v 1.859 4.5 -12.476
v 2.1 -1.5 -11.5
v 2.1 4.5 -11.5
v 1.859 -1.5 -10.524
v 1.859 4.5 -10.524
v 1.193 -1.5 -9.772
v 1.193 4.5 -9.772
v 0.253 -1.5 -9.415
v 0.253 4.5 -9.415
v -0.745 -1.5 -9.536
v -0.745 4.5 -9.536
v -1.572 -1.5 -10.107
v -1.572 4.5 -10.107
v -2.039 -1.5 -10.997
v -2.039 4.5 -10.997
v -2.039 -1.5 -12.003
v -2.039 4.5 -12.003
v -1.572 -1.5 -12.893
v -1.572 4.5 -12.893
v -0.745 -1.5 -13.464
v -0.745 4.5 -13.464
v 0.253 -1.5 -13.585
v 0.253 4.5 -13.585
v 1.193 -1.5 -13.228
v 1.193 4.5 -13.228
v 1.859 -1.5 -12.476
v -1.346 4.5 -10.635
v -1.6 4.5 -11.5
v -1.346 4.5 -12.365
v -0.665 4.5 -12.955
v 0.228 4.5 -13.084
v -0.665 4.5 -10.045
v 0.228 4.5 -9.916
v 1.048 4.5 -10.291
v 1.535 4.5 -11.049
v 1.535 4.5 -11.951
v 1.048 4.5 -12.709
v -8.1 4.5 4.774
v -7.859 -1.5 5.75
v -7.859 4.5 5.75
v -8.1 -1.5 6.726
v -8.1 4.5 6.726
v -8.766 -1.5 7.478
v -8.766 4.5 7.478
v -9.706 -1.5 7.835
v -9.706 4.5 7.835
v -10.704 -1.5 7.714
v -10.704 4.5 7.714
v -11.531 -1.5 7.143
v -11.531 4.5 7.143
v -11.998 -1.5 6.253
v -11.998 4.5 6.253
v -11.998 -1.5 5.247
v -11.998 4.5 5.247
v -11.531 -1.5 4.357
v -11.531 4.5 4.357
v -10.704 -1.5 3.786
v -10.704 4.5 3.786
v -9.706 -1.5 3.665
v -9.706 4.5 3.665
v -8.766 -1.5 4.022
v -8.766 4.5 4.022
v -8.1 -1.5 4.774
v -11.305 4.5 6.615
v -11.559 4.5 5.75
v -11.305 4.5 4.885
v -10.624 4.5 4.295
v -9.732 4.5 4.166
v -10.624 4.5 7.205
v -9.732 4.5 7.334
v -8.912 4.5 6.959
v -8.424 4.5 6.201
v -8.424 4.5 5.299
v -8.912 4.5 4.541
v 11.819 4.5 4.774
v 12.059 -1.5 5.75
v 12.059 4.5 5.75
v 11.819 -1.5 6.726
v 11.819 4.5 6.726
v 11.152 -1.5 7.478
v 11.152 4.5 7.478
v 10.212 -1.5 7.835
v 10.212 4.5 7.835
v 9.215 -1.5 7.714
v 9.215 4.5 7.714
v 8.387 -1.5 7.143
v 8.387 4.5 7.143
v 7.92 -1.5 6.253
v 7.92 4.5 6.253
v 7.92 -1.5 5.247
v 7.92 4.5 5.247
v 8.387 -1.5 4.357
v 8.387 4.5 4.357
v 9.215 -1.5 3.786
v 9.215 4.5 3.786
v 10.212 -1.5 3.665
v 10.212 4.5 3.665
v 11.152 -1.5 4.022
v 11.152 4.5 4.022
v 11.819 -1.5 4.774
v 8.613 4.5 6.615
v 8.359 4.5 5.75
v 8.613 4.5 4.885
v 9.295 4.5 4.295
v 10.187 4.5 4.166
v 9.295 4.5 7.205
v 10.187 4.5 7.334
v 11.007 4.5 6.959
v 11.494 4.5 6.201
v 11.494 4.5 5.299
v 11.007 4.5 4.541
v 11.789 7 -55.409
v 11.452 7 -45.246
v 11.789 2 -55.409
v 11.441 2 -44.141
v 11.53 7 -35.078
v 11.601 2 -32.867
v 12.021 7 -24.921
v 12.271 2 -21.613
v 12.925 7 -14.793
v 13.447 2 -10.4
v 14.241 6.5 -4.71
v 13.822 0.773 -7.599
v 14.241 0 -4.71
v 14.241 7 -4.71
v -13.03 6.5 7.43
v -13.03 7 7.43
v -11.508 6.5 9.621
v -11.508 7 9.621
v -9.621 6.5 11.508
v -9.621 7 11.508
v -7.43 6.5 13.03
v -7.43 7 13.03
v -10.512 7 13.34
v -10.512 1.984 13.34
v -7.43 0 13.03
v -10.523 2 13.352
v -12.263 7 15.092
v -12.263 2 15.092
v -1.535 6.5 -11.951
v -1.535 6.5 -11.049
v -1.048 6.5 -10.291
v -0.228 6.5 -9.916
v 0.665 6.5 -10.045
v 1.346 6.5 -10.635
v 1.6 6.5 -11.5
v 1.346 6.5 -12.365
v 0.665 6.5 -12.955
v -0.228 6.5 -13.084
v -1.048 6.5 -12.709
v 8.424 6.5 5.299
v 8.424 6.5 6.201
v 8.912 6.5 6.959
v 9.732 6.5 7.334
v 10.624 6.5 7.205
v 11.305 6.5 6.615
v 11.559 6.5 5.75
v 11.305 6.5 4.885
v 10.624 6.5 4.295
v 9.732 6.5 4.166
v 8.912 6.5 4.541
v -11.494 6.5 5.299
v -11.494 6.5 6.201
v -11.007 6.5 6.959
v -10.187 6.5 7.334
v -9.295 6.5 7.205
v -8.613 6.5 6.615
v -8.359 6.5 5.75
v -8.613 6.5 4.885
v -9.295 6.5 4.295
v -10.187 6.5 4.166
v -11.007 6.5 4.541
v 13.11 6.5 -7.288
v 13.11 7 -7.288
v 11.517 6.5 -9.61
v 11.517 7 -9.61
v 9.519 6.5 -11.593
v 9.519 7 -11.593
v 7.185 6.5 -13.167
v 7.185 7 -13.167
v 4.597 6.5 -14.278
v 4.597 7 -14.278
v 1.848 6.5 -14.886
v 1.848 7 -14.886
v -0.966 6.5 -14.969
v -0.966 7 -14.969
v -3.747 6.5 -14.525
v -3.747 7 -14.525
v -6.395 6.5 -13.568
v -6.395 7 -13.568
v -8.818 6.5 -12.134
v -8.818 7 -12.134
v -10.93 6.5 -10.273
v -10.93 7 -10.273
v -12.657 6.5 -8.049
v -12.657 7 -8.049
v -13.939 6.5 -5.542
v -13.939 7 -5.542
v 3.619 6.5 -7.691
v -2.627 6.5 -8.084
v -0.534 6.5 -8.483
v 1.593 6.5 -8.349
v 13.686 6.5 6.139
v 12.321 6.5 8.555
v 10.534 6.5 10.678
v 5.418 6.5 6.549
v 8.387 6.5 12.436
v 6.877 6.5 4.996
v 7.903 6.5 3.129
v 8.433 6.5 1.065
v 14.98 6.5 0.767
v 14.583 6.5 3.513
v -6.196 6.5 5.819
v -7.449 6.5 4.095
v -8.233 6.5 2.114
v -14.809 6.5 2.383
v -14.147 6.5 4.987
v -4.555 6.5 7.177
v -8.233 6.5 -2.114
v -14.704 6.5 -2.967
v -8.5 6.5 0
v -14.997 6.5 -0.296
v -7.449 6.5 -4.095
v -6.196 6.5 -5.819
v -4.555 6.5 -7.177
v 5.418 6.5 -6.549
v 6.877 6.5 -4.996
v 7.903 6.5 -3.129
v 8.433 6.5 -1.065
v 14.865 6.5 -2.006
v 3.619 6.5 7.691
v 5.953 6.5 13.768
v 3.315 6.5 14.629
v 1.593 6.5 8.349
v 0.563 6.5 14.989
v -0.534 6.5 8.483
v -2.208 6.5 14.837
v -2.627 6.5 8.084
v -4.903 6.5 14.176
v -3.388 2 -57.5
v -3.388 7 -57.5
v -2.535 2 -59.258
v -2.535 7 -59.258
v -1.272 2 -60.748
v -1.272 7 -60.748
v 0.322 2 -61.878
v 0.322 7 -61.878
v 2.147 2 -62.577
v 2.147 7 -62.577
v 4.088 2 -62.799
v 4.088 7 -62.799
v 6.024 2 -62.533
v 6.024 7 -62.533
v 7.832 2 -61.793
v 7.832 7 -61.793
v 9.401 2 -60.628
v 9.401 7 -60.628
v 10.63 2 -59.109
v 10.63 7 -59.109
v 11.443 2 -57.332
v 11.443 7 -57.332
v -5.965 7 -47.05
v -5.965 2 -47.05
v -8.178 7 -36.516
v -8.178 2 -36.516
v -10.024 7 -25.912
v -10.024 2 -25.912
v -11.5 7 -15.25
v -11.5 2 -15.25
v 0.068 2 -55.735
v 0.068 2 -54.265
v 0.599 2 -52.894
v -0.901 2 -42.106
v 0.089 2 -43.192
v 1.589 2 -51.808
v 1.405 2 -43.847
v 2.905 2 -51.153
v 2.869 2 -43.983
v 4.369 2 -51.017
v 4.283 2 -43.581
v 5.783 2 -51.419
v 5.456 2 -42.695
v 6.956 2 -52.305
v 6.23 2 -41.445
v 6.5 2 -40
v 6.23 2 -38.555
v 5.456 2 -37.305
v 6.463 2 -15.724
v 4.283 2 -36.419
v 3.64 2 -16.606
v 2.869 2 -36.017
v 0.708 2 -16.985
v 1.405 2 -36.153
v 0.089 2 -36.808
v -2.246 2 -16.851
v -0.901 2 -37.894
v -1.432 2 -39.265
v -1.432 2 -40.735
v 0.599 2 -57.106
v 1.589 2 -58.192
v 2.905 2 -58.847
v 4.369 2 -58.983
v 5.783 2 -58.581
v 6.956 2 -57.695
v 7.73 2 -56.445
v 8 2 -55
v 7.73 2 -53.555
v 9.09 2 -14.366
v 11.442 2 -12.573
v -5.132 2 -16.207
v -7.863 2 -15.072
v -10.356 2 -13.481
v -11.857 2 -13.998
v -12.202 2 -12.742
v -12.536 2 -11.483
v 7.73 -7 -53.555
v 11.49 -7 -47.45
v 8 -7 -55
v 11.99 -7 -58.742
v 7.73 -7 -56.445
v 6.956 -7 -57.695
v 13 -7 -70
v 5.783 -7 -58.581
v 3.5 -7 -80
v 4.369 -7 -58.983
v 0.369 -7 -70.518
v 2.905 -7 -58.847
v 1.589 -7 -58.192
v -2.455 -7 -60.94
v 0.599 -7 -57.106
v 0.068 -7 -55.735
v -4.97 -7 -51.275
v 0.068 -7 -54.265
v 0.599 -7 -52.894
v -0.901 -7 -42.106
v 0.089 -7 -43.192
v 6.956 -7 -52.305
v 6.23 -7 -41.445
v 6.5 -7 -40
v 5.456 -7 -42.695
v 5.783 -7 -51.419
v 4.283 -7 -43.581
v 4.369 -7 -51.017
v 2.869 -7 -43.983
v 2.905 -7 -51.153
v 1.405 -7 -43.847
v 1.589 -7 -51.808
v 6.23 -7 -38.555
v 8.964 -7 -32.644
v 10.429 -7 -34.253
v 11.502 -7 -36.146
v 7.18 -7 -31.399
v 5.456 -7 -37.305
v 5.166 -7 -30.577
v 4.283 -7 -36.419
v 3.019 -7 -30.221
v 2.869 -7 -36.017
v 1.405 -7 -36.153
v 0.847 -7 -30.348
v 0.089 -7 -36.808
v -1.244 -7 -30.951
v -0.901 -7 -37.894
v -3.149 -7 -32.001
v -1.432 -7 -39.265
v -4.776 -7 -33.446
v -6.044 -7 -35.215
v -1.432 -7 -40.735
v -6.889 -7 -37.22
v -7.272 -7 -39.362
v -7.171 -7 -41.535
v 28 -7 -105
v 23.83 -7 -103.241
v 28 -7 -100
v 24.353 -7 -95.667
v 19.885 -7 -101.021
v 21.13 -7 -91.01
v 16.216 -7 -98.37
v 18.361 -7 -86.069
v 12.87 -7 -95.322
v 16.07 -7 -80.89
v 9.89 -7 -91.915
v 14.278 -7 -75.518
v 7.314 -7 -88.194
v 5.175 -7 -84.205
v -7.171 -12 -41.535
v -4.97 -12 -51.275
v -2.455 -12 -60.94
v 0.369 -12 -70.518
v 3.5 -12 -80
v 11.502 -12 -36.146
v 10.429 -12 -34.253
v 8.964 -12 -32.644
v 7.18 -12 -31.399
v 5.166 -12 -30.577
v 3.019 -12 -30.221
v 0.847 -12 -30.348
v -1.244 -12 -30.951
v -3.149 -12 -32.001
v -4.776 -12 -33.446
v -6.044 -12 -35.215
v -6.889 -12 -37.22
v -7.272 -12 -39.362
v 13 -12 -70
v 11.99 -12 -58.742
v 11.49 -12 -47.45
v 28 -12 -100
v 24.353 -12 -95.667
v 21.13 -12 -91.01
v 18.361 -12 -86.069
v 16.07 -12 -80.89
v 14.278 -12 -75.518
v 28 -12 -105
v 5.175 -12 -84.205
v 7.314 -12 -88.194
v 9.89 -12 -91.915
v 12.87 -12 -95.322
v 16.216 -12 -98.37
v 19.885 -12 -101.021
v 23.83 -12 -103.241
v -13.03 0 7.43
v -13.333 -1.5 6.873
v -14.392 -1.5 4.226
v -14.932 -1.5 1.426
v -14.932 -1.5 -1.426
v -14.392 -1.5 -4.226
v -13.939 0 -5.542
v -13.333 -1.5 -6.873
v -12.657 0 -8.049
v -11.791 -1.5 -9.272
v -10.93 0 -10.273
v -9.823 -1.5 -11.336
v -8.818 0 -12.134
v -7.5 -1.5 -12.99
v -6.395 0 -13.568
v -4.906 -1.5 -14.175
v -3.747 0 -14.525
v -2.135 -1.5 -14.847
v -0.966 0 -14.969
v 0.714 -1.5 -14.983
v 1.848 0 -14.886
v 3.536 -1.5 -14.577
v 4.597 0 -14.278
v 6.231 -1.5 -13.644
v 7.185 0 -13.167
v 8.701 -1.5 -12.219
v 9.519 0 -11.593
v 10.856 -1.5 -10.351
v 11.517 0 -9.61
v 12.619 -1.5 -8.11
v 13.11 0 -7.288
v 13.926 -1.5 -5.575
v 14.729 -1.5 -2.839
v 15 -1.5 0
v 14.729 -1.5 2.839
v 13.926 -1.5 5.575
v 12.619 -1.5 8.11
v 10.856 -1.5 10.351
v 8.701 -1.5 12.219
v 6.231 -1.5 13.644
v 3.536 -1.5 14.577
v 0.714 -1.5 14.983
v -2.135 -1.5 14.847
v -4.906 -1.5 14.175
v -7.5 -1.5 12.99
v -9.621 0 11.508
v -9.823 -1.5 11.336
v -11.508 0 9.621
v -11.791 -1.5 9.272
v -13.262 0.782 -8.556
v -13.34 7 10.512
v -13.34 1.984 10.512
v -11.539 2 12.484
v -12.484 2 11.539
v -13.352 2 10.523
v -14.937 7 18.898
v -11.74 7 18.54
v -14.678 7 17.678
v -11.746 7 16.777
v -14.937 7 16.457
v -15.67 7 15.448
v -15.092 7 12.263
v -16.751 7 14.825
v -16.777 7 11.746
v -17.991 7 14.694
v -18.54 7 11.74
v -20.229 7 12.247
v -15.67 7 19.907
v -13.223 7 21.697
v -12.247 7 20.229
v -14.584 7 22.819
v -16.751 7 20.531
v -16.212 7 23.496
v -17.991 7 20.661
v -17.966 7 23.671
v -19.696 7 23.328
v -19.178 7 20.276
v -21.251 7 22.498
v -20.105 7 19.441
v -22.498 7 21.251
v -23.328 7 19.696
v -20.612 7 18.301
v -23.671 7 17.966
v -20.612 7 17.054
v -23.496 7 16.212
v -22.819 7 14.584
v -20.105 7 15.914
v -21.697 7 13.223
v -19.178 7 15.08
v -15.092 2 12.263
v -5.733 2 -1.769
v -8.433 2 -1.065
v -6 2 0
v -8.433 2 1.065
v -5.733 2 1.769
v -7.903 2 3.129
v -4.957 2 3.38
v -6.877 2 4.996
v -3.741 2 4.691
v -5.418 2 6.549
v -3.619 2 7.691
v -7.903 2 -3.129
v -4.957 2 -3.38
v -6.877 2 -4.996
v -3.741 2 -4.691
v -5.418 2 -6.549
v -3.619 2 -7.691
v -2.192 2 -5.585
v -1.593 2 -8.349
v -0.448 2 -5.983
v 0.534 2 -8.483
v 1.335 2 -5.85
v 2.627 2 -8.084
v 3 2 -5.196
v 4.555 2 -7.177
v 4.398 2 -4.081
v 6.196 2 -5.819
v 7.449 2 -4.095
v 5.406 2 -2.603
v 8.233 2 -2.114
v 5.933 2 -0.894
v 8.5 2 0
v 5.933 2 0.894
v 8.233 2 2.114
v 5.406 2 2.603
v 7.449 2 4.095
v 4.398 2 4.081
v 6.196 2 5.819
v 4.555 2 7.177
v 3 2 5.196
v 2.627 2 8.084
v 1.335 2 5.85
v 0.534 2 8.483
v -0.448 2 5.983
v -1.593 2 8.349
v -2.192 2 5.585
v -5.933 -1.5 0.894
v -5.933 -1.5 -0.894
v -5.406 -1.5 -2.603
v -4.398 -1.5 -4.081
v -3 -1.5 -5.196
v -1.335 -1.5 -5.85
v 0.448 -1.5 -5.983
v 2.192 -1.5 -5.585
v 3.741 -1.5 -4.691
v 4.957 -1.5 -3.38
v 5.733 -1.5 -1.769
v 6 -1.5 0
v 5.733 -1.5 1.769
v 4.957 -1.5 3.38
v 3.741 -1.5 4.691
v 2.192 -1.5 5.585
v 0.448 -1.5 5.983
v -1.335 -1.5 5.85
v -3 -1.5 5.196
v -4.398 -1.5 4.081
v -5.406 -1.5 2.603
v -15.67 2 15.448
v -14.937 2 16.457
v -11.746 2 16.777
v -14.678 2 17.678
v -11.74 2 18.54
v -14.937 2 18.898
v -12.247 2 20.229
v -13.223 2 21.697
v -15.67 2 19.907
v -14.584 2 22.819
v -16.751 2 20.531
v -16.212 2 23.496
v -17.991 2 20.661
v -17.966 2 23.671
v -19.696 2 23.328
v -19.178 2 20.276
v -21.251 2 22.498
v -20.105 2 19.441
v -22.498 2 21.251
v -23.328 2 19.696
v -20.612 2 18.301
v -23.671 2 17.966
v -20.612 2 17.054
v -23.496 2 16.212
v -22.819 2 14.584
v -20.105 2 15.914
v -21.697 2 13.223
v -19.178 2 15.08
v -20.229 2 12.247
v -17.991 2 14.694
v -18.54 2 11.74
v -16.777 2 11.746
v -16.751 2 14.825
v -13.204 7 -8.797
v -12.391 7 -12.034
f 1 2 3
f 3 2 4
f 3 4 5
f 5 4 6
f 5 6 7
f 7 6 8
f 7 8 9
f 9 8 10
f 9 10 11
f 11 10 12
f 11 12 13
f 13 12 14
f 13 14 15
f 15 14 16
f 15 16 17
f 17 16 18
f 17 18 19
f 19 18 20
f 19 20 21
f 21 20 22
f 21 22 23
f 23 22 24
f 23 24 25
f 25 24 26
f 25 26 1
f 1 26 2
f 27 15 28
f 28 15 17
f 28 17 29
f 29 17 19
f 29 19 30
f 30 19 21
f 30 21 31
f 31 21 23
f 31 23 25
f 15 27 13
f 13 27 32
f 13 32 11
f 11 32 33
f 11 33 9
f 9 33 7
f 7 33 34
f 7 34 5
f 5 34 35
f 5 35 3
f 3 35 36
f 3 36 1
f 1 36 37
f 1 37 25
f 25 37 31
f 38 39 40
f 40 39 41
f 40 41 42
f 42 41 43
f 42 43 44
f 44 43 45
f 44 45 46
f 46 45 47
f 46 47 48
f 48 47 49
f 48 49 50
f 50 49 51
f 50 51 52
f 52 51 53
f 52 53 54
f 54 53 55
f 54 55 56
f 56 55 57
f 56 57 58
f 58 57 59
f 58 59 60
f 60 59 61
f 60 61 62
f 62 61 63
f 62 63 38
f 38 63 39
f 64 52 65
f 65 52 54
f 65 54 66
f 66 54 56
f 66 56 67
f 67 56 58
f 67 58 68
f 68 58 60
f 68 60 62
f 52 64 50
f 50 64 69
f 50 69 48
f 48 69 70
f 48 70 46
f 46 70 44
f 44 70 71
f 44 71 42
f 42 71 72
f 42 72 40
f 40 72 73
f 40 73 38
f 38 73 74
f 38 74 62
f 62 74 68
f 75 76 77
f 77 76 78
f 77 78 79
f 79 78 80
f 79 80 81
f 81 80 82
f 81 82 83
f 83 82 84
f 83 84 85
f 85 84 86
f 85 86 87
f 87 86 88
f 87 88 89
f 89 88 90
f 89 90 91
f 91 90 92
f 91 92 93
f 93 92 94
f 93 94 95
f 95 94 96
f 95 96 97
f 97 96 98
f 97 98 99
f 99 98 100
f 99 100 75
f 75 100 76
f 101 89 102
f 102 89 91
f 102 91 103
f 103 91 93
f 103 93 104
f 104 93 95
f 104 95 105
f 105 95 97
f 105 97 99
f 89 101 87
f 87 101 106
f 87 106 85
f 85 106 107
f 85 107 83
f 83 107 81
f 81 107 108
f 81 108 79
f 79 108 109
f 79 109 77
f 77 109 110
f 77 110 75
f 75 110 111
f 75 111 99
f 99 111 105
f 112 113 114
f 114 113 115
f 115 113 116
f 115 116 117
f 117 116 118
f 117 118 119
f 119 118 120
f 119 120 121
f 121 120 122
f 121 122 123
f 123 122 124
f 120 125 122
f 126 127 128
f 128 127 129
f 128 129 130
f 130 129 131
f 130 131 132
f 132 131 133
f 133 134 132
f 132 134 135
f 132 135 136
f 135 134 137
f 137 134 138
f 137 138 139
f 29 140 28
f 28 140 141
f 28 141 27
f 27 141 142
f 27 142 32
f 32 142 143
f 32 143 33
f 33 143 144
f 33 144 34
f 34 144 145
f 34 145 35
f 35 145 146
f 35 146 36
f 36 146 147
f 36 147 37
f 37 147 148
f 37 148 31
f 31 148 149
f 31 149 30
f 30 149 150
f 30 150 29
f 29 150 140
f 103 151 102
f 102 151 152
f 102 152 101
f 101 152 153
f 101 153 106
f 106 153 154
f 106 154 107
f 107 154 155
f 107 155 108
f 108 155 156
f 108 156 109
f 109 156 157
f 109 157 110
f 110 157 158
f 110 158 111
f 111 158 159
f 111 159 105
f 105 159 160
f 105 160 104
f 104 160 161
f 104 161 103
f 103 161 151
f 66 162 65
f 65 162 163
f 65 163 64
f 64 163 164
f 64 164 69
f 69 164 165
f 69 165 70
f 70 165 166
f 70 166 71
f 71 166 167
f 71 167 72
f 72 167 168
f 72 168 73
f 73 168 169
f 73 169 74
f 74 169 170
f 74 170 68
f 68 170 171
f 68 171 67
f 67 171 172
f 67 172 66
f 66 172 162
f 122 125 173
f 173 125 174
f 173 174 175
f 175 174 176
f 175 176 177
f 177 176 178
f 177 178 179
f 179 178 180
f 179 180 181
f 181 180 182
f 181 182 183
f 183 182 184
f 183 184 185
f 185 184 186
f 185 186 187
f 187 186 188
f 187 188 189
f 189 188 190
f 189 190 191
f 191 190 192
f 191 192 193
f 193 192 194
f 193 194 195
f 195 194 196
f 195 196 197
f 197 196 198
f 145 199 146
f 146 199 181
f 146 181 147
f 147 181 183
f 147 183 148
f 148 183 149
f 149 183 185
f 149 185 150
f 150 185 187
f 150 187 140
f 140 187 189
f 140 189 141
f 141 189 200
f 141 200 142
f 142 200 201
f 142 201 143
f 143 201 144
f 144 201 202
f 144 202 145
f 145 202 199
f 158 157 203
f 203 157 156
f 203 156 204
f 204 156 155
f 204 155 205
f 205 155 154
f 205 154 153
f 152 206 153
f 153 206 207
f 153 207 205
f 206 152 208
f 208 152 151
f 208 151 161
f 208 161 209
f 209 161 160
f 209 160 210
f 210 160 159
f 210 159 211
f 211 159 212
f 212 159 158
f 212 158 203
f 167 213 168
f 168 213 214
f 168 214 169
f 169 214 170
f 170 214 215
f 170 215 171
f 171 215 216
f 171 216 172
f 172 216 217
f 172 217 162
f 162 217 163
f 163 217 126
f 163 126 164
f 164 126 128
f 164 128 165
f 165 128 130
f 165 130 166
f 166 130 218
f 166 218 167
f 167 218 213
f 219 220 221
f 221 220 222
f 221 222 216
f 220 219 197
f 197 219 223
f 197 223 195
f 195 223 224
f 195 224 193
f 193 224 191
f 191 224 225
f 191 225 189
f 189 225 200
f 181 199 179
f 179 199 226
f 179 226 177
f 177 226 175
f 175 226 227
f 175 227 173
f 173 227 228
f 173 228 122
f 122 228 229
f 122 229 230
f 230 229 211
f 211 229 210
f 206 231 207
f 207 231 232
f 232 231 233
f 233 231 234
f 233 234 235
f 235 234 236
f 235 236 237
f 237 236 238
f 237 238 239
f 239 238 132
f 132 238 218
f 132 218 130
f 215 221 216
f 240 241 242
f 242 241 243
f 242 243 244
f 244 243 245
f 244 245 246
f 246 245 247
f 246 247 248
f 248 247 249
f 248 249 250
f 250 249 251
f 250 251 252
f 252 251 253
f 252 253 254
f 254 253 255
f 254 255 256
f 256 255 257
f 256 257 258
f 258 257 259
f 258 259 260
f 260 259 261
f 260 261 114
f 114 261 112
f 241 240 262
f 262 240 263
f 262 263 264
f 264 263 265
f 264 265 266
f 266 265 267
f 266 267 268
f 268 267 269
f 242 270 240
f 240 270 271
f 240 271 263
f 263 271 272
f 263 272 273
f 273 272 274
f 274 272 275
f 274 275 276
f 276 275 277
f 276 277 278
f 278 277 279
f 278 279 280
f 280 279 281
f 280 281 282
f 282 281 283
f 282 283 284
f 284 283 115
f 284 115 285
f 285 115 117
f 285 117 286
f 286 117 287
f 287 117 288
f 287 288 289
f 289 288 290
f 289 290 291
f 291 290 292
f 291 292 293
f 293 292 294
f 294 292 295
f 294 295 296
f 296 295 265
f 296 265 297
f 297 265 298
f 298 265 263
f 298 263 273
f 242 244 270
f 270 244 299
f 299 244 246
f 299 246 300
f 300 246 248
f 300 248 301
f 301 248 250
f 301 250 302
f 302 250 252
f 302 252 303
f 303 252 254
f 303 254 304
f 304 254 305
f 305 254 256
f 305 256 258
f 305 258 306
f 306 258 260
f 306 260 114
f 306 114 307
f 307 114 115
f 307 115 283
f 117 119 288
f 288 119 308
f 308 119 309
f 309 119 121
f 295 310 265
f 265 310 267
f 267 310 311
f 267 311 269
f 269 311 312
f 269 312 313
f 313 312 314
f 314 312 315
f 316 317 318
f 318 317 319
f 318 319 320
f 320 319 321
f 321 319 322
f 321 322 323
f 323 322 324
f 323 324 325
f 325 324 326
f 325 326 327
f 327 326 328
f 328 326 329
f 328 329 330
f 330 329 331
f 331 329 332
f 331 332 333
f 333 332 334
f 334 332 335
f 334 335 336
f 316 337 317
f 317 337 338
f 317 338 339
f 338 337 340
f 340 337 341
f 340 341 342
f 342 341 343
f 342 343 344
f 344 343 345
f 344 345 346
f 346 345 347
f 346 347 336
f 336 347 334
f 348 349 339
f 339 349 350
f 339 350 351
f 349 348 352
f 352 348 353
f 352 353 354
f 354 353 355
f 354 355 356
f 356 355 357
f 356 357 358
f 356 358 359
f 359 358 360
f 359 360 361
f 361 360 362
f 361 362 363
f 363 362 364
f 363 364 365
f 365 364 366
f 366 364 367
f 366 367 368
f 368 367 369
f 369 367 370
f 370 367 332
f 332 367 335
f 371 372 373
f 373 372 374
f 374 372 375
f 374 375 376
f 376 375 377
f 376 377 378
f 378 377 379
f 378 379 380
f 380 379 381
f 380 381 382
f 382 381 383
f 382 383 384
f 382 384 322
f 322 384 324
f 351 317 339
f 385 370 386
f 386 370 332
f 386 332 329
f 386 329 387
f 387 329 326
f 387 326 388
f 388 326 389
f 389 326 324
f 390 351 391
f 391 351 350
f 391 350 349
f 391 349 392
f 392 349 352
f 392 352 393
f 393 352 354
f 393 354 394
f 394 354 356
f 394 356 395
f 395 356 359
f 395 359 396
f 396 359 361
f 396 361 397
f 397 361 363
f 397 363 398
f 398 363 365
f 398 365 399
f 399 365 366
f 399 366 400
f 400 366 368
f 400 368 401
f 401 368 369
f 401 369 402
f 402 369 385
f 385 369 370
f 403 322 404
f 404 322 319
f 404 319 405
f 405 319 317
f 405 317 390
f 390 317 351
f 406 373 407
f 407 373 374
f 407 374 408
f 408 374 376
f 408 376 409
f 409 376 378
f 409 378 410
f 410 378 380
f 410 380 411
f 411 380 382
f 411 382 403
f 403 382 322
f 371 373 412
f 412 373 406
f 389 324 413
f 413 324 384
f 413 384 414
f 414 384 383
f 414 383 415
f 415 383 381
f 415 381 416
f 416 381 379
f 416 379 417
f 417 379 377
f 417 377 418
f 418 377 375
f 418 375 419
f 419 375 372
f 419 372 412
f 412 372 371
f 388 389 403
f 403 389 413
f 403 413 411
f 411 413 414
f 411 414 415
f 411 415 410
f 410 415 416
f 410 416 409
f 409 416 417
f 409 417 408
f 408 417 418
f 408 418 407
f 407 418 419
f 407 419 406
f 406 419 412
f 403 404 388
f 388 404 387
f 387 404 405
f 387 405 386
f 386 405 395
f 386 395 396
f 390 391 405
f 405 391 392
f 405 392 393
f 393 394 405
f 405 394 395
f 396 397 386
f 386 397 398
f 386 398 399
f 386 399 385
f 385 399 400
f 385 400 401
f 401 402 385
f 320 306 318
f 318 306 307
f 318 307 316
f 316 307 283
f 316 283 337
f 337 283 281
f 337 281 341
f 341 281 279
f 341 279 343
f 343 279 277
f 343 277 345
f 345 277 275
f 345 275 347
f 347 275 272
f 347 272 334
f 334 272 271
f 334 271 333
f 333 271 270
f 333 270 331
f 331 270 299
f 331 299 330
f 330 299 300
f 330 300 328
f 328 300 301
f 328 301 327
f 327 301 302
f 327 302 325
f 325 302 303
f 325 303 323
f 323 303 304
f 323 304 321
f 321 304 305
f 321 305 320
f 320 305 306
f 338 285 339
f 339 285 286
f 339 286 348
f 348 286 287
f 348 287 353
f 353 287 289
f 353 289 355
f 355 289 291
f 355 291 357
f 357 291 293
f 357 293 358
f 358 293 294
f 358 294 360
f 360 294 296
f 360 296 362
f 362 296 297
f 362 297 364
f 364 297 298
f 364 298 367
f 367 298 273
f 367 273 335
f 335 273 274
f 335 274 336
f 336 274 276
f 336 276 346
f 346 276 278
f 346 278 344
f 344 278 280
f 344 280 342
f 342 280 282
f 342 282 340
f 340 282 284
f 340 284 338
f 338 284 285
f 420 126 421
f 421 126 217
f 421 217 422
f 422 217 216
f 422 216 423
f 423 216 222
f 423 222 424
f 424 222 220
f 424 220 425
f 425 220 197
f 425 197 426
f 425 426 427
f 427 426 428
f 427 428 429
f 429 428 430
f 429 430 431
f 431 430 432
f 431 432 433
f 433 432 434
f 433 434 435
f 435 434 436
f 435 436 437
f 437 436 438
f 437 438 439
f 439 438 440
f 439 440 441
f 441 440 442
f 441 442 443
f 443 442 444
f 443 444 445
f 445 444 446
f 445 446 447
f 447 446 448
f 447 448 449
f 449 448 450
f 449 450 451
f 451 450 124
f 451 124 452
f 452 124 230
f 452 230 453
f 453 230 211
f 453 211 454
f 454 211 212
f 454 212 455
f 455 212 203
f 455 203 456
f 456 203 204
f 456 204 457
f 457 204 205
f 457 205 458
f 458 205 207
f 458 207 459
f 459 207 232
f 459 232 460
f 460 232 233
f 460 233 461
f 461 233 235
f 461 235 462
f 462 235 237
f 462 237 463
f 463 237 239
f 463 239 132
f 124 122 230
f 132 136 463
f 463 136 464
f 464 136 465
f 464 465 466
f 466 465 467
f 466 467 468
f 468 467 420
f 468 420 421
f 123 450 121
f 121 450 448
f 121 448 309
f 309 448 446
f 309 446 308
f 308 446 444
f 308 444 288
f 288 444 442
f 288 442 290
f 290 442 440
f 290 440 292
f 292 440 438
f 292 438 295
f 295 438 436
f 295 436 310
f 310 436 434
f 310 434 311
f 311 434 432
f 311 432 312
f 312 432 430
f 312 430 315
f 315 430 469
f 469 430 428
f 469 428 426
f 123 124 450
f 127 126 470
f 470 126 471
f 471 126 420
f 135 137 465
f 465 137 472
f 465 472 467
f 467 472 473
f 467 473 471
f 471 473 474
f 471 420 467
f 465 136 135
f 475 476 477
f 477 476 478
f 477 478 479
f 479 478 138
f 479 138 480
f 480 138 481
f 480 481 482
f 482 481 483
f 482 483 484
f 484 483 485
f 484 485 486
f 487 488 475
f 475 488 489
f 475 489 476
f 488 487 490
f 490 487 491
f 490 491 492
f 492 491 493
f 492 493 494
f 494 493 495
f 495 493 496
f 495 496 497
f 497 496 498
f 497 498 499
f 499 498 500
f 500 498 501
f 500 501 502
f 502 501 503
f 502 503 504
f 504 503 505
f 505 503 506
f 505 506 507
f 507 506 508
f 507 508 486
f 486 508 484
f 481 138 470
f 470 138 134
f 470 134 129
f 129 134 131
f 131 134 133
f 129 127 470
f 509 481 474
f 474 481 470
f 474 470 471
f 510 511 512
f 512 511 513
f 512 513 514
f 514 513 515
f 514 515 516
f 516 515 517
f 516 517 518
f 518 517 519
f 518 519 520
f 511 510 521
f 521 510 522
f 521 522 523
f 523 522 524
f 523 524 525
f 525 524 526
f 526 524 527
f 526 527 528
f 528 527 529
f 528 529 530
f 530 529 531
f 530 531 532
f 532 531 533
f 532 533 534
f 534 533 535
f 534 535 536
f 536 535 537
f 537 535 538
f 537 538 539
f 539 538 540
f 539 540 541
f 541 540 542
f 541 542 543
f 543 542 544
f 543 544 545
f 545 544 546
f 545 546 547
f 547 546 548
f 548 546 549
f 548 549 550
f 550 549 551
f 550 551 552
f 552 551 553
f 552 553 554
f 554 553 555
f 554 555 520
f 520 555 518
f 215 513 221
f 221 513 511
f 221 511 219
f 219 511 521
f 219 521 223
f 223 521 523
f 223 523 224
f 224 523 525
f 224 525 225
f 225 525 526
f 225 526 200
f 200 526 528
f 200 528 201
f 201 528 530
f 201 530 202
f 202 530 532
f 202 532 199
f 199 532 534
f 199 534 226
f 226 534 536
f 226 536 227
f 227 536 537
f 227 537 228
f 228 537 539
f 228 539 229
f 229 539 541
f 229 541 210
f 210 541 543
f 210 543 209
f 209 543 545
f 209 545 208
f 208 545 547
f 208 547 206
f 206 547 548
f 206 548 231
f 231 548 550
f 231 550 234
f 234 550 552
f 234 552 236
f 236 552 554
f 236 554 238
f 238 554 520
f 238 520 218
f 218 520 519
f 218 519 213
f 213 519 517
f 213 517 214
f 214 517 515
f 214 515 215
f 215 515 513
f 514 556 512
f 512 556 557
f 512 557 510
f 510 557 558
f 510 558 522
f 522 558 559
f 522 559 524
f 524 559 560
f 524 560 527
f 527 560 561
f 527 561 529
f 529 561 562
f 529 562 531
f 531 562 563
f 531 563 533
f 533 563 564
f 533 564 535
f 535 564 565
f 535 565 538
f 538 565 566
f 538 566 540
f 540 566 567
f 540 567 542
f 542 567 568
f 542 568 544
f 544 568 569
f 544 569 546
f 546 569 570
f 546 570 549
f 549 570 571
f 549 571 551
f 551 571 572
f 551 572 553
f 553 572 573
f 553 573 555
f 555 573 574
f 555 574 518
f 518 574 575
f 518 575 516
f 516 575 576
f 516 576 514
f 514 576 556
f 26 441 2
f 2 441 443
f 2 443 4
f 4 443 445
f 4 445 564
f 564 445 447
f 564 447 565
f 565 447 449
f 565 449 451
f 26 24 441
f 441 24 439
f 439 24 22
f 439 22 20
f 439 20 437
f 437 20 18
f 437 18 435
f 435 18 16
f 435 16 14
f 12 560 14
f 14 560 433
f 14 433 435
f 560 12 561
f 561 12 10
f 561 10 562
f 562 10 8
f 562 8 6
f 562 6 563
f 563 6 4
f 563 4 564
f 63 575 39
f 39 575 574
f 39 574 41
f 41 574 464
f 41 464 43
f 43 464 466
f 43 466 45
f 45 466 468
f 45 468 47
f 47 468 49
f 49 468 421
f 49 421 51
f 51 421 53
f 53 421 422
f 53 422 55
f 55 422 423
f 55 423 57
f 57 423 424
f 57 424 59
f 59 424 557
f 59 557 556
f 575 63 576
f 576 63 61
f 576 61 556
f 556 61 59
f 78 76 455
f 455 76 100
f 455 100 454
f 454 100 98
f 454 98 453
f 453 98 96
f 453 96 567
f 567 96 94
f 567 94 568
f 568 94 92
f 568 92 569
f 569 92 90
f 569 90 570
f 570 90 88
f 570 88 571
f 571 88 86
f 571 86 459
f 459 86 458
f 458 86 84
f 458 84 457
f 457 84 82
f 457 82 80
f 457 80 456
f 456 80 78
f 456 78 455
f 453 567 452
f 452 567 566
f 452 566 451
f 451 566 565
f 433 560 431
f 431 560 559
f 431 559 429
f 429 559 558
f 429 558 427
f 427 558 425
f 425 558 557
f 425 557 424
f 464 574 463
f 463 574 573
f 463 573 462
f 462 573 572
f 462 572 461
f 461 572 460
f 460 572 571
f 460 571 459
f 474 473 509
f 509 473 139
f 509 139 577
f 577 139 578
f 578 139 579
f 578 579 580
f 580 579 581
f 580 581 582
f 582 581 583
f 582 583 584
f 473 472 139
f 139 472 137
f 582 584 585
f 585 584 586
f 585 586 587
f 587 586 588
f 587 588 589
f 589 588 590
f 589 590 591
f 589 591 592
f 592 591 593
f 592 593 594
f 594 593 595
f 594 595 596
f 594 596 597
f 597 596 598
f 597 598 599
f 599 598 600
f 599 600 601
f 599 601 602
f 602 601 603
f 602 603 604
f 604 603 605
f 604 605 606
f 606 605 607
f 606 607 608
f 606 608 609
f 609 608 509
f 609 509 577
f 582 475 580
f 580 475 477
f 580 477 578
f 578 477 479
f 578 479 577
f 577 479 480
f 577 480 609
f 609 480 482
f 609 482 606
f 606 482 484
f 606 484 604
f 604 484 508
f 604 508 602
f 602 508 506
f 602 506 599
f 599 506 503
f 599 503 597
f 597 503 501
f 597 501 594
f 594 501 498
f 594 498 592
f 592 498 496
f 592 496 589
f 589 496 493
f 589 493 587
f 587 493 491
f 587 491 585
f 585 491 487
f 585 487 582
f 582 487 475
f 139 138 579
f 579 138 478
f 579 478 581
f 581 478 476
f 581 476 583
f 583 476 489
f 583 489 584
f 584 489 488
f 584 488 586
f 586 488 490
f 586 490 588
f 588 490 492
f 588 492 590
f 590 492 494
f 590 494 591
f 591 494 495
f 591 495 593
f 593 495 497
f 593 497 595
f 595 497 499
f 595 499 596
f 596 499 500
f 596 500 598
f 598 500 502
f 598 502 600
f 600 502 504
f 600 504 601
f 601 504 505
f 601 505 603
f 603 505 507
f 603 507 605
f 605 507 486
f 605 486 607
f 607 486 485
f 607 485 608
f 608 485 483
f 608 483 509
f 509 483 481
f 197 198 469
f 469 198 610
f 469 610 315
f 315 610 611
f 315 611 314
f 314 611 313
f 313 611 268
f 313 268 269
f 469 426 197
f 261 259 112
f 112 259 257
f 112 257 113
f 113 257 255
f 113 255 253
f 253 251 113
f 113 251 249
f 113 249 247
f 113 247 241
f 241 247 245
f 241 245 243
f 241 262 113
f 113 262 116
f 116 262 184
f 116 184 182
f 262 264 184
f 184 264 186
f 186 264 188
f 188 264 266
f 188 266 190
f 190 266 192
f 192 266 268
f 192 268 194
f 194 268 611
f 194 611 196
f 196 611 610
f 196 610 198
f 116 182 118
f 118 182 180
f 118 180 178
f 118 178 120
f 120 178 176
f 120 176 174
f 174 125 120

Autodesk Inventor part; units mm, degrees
sketch "Skizze10" plane through (0, 0, 0) normal (1, 0, 0) x (0, 1, 0)
  line L0 (-1.4, 0) -> (8.4, 0) projected
  line L1 (0, -13.2) -> (0, 2.2) projected
  line L2 (2, -2.5) -> (7, -2.5)
  line L3 (7, -2.5) -> (7, -8.5)
  line L4 (7, -8.5) -> (2, -8.5)
  line L5 (2, -8.5) -> (2, -2.5)
  point P0 (0, 0)
  point P1 (0, -11)
  dimension "d135" = 8.5
  dimension "d137" = 5
  dimension "d138" = 2
  dimension "d145" = 2.5
revolve "Umdrehung2" add sketch "Skizze10" angle 360 about axis through (0, -10, 0) along (0, 1, 0)
ref_plane "Arbeitsebene2" through (0, 6, 0) normal (0, 1, 0) x (1, 0, 0)
ref_plane "Arbeitsebene3" through (0, 4.5, 0) normal (0, 1, 0) x (1, 0, 0)
sketch "Skizze12" plane through (0, 4.5, 0) normal (0, 1, 0) x (1, 0, 0)
  arc A0 (3.5, 80) -> (-11.5, 15.25) centre (296.2619, -21.9337) ccw projected
  arc A1 (28, 100) -> (13, 70) centre (72.0267, 59.2367) ccw projected
  line L0 (28, 100) -> (28, 105) projected
  arc A2 (28, 105) -> (3.5, 80) centre (41.4387, 67.3251) ccw projected
  circle A3 centre (0, 0) radius 15
  arc A4 (13, 70) -> (15, 0) centre (261.1443, 42.0613) ccw
  arc A5 (-11.5, 15.25) -> (-15, 0) centre (120.624, -23.1002) ccw
  circle A6 centre (0, 0) radius 8.5 projected
  line L1 (0, 0) -> (-17.6777, -17.6777)
  line L2 (-87.6656, 0) -> (360.2498, 0) projected
  line L3 (0, 134.1222) -> (0, -49.9776) projected
  circle A7 centre (-17.6777, -17.6777) radius 6
  circle A8 centre (-17.6777, -17.6777) radius 3
  line L4 (1.4142, -1.4142) -> (-12.7279, -15.5563)
  line L5 (-1.4142, 1.4142) -> (-15.5563, -12.7279)
  point P0 (-16.4, 0)
  point P1 (-11.9261, -9.0977)
  point P2 (-15.0919, -12.2635)
  point P3 (-12.2635, -15.0919)
  point P4 (-9.0977, -11.9261)
  dimension "d147" = 30
  dimension "d148" = 45
  dimension "d149" = 25
  dimension "d150" = 12
  dimension "d152" = 3
  dimension "d153" = 2
  dimension "d154" = 2
sketch "Skizze13" plane through (0, 4.5, 0) normal (0, 1, 0) x (1, 0, 0)
  point P0 (0, 0)
extrude "Extrusion8" add sketch "Skizze12" along normal mid plane 5 contours A2 L0 A1 A4 A3 L3 A0 | L3 A3 A5 A0 | L3 A6 L2 A5 A3 | A3 A4 L2 A6 L3 | L3 L2 A6 | A6 L2 L3 | L2 A6 L5 A3 | A3 L3 A6 L2 | A6 L3 L2 | L2 L5 A6 | L3 L4 A6 L1 | L1 A6 L5 L2 | L5 A6 L1 A3 | A3 L1 A7 L5 | A3 L4 A6 L3 | A6 L4 L3 | A6 L4 A3 L1 | A3 L4 A7 L1 | A7
sketch "Skizze14" plane through (0, 4.5, 0) normal (0, 1, 0) x (1, 0, 0)
  circle A0 centre (0, 0) radius 2.5
  dimension "d157" = 5
extrude "Extrusion9" cut sketch "Skizze14" along normal mid plane 20
sketch "Skizze15" plane through (0, 4.5, 0) normal (0, 1, 0) x (1, 0, 0)
  arc A0 (-11.5, 15.25) -> (-15, 0) centre (120.624, -23.1002) ccw projected
  circle A1 centre (0, 0) radius 15
extrude "Extrusion10" add sketch "Skizze15" along normal mid plane 12
sketch "Skizze16" plane through (0, 4.5, 0) normal (0, 1, 0) x (1, 0, 0)
  circle A0 centre (0, 0) radius 6
  dimension "d162" = 12
extrude "Extrusion11" cut sketch "Skizze16" along normal mid plane 12
sketch "Skizze17" plane through (0, 4.5, 0) normal (0, 1, 0) x (1, 0, 0)
  circle A0 centre (0, 0) radius 8.5
  dimension "d165" = 17
extrude "Extrusion12" cut sketch "Skizze17" along normal mid plane 5
chamfer "Fasen7" distance 2 angle 45 8 edges at (-10.6066, 7, 10.6066) (-9.0977, 5.75, 11.9261) (-9.0977, 3.25, 11.9261) (-10.6066, 2, 10.6066) (0.4428, 2, -14.9935) (0.4428, 7, -14.9935) (-11.9261, 5.75, 9.0977) (-11.9261, 3.25, 9.0977)
sketch "Skizze18" plane through (28, 2, -105) normal (0, -1, 0) x (1, 0, 0)
  point P0 (-28, 105)
ref_plane "Arbeitsebene4" through (28, -7, -105) normal (0, -1, 0) x (1, 0, 0)
sketch "Skizze20" plane through (28, 2, -105) normal (0, -1, 0) x (1, 0, 0)
  circle A0 centre (-24, 50) radius 4
  circle A1 centre (-25.5, 65) radius 4
  point P0 (-28, 105)
  dimension "d188" = 8
  dimension "d189" = 8
  dimension "d192" = 1.5
  dimension "d193" = 15
extrude "Extrusion14" add sketch "Skizze20" along normal blind 9
sketch "Skizze19" plane through (28, -7, -105) normal (0, -1, 0) x (1, 0, 0)
  arc A0 (-24.5, 25) -> (0, 0) centre (13.4387, 37.6749) ccw projected
  arc A1 (-15, 35) -> (0, 5) centre (44.0267, 45.7633) ccw projected
  line L0 (0, 0) -> (0, 5) projected
  line L1 (-15, 35) -> (-24.5, 25)
  arc A2 (-39.5, 89.75) -> (-24.5, 25) centre (268.2619, 126.9337) ccw projected
  arc A3 (-14.5526, 94.5996) -> (-15, 35) centre (233.1443, 62.9387) ccw projected
  line L2 (-27, 80) -> (3, 80) construction
  line L3 (-27, 80) -> (-7, 80) construction
  line L4 (-27, 82.5) -> (-5.7868, 82.5) construction
  circle A4 centre (-27, 80) radius 4 projected
  circle A5 centre (-27, 80) radius 4 projected
  circle A6 centre (-27, 60) radius 2.5 projected
  circle A7 centre (-27, 60) radius 2.5 projected
  circle A8 centre (-25.5, 65) radius 4 projected
  circle A9 centre (-25.5, 65) radius 9.7924
  point P0 (-28, 105)
  point P1 (-16.5679, 62.8977)
  point P2 (-37.8031, 77.6969)
  point P3 (-16.4978, 68.8538)
  point P4 (-35.1713, 63.4649)
extrude "Extrusion13" add sketch "Skizze19" along normal blind 5 contours L1 A1 L0 A0 | A2 A9 A3 L1 | A2 A9 A3 | A6 A8 | A8 A6 | A6 A8
sketch "Skizze21" plane through (28, 7, -100) normal (0, 1, 0) x (1, 0, 0)
  circle A0 centre (-24, -45) radius 4 projected
  circle A1 centre (-25.5, -60) radius 4 projected
  circle A2 centre (-27, -75) radius 4 projected
  circle A3 centre (-24, -45) radius 7.7999
  arc A4 (-14.5526, -89.5996) -> (-40.5357, -88.5171) centre (-28, -100) ccw projected
  arc A5 (-15, -30) -> (-14.5526, -89.5996) centre (233.1443, -57.9387) ccw projected
  arc A6 (0, 0) -> (-15, -30) centre (44.0267, -40.7633) ccw projected
  line L0 (0, 0) -> (0, 5) projected
  arc A7 (0, 5) -> (-24.5, -20) centre (13.4387, -32.6749) ccw projected
  arc A8 (-24.5, -20) -> (-39.5, -84.75) centre (268.2619, -121.9337) ccw projected
  arc A9 (-39.5, -84.75) -> (-40.5357, -88.5171) centre (92.624, -123.1002) ccw projected
  point P0 (-31.3884, -42.5)
  point P1 (-16.2109, -44.5906)
extrude "Extrusion15" cut sketch "Skizze21" against normal blind 5 contours A3 A8 A7 L0 A6 A5
sketch "Skizze22" plane through (0, 10.5, 0) normal (0, 1, 0) x (1, 0, 0)
  circle A0 centre (0, 0) radius 15
extrude "Extrusion16" cut sketch "Skizze22" against normal blind 4
sketch "Skizze23" plane through (0, 6.5, 0) normal (0, 1, 0) x (1, 0, 0)
  circle A0 centre (0, 0) radius 11.5
  circle A1 centre (0, 0) radius 8.5 projected
  arc A2 (-7.4302, -13.0304) -> (14.2414, 4.7098) centre (0, 0) ccw projected
  arc A3 (14.2414, 4.7098) -> (-13.9387, 5.5419) centre (0, 0) ccw projected
  arc A4 (-13.9387, 5.5419) -> (-13.0304, -7.4302) centre (0, 0) ccw projected
  arc A5 (-13.0304, -7.4302) -> (-7.4302, -13.0304) centre (0, 0) ccw projected
  line L0 (0, 0) -> (0, 30.1183)
  line L1 (0, 0) -> (-26.0832, -15.0591)
  line L2 (0, 0) -> (26.0832, -15.0591)
  circle A6 centre (-9.9593, -5.75) radius 1.6
  circle A7 centre (9.9593, -5.75) radius 1.6
  circle A8 centre (0, 11.5) radius 1.6
  dimension "d198" = 3
  dimension "d201" = 360
  dimension "d203" = 3.2
  dimension "d204" = 3.2
  dimension "d205" = 3.2
  dimension "d210" = 23
extrude "Extrusion17" cut sketch "Skizze23" against normal blind 8 contours A8 L0 A0 | A0 L0 A8 | A7 L2 A0 | A0 L2 A7 | L0 A8 A0 | A0 A8 L0 | L2 A7 A0 | A0 A7 L2 | A6 L1 A0 | A0 L1 A6 | A6 L1 A0 | A0 L1 A6
sketch "Skizze24" plane through (0, 7, 0) normal (0, 1, 0) x (0.9991332, 0, 0.0416272)
  arc A0 (-5.779, 57.3091) -> (-12.1248, 14.7581) centre (296.9181, -9.5822) ccw projected
  arc A1 (-12.1248, 14.7581) -> (-13.0028, 10.9511) centre (121.481, -18.0589) ccw projected
  arc A2 (13.0028, 10.9511) -> (-13.0028, 10.9511) centre (0, 0) ccw projected
  arc A3 (9.4724, 55.8521) -> (13.0028, 10.9511) centre (259.167, 52.8955) ccw projected
  line L0 (41.2501, 29.7308) -> (-28.4254, 29.7308)
  line L1 (-28.4254, 29.7308) -> (-28.4254, -36.8887)
  line L2 (-28.4254, -36.8887) -> (41.2501, -36.8887)
  line L3 (41.2501, -36.8887) -> (41.2501, 29.7308)
  point P0 (-10.579, 29.7308)
  point P1 (10.5316, 29.7308)
extrude "Extrusion18" cut sketch "Skizze24" along normal blind 5 contours A0 A1 A2 A3 L0 L3 L2 L1
sketch "Skizze26" plane through (0, -1.5, 0) normal (0, -1, 0) x (1, 0, 0)
  circle A0 centre (0, -11.5) radius 1.6 projected
  circle A1 centre (9.9593, 5.75) radius 1.6 projected
  circle A2 centre (-9.9593, 5.75) radius 1.6 projected
  circle A3 centre (-9.9593, 5.75) radius 2.1
  circle A4 centre (9.9593, 5.75) radius 2.1
  circle A5 centre (0, -11.5) radius 2.1
  dimension "d213" = 4.2
  dimension "d214" = 4.2
  dimension "d215" = 4.2
extrude "Extrusion19" cut sketch "Skizze26" against normal blind 6 contours A0 | A1 | A2 | A3 | A4 | A5
properties part number "01-03-01 Zange links nue" material "Phenolharz"
